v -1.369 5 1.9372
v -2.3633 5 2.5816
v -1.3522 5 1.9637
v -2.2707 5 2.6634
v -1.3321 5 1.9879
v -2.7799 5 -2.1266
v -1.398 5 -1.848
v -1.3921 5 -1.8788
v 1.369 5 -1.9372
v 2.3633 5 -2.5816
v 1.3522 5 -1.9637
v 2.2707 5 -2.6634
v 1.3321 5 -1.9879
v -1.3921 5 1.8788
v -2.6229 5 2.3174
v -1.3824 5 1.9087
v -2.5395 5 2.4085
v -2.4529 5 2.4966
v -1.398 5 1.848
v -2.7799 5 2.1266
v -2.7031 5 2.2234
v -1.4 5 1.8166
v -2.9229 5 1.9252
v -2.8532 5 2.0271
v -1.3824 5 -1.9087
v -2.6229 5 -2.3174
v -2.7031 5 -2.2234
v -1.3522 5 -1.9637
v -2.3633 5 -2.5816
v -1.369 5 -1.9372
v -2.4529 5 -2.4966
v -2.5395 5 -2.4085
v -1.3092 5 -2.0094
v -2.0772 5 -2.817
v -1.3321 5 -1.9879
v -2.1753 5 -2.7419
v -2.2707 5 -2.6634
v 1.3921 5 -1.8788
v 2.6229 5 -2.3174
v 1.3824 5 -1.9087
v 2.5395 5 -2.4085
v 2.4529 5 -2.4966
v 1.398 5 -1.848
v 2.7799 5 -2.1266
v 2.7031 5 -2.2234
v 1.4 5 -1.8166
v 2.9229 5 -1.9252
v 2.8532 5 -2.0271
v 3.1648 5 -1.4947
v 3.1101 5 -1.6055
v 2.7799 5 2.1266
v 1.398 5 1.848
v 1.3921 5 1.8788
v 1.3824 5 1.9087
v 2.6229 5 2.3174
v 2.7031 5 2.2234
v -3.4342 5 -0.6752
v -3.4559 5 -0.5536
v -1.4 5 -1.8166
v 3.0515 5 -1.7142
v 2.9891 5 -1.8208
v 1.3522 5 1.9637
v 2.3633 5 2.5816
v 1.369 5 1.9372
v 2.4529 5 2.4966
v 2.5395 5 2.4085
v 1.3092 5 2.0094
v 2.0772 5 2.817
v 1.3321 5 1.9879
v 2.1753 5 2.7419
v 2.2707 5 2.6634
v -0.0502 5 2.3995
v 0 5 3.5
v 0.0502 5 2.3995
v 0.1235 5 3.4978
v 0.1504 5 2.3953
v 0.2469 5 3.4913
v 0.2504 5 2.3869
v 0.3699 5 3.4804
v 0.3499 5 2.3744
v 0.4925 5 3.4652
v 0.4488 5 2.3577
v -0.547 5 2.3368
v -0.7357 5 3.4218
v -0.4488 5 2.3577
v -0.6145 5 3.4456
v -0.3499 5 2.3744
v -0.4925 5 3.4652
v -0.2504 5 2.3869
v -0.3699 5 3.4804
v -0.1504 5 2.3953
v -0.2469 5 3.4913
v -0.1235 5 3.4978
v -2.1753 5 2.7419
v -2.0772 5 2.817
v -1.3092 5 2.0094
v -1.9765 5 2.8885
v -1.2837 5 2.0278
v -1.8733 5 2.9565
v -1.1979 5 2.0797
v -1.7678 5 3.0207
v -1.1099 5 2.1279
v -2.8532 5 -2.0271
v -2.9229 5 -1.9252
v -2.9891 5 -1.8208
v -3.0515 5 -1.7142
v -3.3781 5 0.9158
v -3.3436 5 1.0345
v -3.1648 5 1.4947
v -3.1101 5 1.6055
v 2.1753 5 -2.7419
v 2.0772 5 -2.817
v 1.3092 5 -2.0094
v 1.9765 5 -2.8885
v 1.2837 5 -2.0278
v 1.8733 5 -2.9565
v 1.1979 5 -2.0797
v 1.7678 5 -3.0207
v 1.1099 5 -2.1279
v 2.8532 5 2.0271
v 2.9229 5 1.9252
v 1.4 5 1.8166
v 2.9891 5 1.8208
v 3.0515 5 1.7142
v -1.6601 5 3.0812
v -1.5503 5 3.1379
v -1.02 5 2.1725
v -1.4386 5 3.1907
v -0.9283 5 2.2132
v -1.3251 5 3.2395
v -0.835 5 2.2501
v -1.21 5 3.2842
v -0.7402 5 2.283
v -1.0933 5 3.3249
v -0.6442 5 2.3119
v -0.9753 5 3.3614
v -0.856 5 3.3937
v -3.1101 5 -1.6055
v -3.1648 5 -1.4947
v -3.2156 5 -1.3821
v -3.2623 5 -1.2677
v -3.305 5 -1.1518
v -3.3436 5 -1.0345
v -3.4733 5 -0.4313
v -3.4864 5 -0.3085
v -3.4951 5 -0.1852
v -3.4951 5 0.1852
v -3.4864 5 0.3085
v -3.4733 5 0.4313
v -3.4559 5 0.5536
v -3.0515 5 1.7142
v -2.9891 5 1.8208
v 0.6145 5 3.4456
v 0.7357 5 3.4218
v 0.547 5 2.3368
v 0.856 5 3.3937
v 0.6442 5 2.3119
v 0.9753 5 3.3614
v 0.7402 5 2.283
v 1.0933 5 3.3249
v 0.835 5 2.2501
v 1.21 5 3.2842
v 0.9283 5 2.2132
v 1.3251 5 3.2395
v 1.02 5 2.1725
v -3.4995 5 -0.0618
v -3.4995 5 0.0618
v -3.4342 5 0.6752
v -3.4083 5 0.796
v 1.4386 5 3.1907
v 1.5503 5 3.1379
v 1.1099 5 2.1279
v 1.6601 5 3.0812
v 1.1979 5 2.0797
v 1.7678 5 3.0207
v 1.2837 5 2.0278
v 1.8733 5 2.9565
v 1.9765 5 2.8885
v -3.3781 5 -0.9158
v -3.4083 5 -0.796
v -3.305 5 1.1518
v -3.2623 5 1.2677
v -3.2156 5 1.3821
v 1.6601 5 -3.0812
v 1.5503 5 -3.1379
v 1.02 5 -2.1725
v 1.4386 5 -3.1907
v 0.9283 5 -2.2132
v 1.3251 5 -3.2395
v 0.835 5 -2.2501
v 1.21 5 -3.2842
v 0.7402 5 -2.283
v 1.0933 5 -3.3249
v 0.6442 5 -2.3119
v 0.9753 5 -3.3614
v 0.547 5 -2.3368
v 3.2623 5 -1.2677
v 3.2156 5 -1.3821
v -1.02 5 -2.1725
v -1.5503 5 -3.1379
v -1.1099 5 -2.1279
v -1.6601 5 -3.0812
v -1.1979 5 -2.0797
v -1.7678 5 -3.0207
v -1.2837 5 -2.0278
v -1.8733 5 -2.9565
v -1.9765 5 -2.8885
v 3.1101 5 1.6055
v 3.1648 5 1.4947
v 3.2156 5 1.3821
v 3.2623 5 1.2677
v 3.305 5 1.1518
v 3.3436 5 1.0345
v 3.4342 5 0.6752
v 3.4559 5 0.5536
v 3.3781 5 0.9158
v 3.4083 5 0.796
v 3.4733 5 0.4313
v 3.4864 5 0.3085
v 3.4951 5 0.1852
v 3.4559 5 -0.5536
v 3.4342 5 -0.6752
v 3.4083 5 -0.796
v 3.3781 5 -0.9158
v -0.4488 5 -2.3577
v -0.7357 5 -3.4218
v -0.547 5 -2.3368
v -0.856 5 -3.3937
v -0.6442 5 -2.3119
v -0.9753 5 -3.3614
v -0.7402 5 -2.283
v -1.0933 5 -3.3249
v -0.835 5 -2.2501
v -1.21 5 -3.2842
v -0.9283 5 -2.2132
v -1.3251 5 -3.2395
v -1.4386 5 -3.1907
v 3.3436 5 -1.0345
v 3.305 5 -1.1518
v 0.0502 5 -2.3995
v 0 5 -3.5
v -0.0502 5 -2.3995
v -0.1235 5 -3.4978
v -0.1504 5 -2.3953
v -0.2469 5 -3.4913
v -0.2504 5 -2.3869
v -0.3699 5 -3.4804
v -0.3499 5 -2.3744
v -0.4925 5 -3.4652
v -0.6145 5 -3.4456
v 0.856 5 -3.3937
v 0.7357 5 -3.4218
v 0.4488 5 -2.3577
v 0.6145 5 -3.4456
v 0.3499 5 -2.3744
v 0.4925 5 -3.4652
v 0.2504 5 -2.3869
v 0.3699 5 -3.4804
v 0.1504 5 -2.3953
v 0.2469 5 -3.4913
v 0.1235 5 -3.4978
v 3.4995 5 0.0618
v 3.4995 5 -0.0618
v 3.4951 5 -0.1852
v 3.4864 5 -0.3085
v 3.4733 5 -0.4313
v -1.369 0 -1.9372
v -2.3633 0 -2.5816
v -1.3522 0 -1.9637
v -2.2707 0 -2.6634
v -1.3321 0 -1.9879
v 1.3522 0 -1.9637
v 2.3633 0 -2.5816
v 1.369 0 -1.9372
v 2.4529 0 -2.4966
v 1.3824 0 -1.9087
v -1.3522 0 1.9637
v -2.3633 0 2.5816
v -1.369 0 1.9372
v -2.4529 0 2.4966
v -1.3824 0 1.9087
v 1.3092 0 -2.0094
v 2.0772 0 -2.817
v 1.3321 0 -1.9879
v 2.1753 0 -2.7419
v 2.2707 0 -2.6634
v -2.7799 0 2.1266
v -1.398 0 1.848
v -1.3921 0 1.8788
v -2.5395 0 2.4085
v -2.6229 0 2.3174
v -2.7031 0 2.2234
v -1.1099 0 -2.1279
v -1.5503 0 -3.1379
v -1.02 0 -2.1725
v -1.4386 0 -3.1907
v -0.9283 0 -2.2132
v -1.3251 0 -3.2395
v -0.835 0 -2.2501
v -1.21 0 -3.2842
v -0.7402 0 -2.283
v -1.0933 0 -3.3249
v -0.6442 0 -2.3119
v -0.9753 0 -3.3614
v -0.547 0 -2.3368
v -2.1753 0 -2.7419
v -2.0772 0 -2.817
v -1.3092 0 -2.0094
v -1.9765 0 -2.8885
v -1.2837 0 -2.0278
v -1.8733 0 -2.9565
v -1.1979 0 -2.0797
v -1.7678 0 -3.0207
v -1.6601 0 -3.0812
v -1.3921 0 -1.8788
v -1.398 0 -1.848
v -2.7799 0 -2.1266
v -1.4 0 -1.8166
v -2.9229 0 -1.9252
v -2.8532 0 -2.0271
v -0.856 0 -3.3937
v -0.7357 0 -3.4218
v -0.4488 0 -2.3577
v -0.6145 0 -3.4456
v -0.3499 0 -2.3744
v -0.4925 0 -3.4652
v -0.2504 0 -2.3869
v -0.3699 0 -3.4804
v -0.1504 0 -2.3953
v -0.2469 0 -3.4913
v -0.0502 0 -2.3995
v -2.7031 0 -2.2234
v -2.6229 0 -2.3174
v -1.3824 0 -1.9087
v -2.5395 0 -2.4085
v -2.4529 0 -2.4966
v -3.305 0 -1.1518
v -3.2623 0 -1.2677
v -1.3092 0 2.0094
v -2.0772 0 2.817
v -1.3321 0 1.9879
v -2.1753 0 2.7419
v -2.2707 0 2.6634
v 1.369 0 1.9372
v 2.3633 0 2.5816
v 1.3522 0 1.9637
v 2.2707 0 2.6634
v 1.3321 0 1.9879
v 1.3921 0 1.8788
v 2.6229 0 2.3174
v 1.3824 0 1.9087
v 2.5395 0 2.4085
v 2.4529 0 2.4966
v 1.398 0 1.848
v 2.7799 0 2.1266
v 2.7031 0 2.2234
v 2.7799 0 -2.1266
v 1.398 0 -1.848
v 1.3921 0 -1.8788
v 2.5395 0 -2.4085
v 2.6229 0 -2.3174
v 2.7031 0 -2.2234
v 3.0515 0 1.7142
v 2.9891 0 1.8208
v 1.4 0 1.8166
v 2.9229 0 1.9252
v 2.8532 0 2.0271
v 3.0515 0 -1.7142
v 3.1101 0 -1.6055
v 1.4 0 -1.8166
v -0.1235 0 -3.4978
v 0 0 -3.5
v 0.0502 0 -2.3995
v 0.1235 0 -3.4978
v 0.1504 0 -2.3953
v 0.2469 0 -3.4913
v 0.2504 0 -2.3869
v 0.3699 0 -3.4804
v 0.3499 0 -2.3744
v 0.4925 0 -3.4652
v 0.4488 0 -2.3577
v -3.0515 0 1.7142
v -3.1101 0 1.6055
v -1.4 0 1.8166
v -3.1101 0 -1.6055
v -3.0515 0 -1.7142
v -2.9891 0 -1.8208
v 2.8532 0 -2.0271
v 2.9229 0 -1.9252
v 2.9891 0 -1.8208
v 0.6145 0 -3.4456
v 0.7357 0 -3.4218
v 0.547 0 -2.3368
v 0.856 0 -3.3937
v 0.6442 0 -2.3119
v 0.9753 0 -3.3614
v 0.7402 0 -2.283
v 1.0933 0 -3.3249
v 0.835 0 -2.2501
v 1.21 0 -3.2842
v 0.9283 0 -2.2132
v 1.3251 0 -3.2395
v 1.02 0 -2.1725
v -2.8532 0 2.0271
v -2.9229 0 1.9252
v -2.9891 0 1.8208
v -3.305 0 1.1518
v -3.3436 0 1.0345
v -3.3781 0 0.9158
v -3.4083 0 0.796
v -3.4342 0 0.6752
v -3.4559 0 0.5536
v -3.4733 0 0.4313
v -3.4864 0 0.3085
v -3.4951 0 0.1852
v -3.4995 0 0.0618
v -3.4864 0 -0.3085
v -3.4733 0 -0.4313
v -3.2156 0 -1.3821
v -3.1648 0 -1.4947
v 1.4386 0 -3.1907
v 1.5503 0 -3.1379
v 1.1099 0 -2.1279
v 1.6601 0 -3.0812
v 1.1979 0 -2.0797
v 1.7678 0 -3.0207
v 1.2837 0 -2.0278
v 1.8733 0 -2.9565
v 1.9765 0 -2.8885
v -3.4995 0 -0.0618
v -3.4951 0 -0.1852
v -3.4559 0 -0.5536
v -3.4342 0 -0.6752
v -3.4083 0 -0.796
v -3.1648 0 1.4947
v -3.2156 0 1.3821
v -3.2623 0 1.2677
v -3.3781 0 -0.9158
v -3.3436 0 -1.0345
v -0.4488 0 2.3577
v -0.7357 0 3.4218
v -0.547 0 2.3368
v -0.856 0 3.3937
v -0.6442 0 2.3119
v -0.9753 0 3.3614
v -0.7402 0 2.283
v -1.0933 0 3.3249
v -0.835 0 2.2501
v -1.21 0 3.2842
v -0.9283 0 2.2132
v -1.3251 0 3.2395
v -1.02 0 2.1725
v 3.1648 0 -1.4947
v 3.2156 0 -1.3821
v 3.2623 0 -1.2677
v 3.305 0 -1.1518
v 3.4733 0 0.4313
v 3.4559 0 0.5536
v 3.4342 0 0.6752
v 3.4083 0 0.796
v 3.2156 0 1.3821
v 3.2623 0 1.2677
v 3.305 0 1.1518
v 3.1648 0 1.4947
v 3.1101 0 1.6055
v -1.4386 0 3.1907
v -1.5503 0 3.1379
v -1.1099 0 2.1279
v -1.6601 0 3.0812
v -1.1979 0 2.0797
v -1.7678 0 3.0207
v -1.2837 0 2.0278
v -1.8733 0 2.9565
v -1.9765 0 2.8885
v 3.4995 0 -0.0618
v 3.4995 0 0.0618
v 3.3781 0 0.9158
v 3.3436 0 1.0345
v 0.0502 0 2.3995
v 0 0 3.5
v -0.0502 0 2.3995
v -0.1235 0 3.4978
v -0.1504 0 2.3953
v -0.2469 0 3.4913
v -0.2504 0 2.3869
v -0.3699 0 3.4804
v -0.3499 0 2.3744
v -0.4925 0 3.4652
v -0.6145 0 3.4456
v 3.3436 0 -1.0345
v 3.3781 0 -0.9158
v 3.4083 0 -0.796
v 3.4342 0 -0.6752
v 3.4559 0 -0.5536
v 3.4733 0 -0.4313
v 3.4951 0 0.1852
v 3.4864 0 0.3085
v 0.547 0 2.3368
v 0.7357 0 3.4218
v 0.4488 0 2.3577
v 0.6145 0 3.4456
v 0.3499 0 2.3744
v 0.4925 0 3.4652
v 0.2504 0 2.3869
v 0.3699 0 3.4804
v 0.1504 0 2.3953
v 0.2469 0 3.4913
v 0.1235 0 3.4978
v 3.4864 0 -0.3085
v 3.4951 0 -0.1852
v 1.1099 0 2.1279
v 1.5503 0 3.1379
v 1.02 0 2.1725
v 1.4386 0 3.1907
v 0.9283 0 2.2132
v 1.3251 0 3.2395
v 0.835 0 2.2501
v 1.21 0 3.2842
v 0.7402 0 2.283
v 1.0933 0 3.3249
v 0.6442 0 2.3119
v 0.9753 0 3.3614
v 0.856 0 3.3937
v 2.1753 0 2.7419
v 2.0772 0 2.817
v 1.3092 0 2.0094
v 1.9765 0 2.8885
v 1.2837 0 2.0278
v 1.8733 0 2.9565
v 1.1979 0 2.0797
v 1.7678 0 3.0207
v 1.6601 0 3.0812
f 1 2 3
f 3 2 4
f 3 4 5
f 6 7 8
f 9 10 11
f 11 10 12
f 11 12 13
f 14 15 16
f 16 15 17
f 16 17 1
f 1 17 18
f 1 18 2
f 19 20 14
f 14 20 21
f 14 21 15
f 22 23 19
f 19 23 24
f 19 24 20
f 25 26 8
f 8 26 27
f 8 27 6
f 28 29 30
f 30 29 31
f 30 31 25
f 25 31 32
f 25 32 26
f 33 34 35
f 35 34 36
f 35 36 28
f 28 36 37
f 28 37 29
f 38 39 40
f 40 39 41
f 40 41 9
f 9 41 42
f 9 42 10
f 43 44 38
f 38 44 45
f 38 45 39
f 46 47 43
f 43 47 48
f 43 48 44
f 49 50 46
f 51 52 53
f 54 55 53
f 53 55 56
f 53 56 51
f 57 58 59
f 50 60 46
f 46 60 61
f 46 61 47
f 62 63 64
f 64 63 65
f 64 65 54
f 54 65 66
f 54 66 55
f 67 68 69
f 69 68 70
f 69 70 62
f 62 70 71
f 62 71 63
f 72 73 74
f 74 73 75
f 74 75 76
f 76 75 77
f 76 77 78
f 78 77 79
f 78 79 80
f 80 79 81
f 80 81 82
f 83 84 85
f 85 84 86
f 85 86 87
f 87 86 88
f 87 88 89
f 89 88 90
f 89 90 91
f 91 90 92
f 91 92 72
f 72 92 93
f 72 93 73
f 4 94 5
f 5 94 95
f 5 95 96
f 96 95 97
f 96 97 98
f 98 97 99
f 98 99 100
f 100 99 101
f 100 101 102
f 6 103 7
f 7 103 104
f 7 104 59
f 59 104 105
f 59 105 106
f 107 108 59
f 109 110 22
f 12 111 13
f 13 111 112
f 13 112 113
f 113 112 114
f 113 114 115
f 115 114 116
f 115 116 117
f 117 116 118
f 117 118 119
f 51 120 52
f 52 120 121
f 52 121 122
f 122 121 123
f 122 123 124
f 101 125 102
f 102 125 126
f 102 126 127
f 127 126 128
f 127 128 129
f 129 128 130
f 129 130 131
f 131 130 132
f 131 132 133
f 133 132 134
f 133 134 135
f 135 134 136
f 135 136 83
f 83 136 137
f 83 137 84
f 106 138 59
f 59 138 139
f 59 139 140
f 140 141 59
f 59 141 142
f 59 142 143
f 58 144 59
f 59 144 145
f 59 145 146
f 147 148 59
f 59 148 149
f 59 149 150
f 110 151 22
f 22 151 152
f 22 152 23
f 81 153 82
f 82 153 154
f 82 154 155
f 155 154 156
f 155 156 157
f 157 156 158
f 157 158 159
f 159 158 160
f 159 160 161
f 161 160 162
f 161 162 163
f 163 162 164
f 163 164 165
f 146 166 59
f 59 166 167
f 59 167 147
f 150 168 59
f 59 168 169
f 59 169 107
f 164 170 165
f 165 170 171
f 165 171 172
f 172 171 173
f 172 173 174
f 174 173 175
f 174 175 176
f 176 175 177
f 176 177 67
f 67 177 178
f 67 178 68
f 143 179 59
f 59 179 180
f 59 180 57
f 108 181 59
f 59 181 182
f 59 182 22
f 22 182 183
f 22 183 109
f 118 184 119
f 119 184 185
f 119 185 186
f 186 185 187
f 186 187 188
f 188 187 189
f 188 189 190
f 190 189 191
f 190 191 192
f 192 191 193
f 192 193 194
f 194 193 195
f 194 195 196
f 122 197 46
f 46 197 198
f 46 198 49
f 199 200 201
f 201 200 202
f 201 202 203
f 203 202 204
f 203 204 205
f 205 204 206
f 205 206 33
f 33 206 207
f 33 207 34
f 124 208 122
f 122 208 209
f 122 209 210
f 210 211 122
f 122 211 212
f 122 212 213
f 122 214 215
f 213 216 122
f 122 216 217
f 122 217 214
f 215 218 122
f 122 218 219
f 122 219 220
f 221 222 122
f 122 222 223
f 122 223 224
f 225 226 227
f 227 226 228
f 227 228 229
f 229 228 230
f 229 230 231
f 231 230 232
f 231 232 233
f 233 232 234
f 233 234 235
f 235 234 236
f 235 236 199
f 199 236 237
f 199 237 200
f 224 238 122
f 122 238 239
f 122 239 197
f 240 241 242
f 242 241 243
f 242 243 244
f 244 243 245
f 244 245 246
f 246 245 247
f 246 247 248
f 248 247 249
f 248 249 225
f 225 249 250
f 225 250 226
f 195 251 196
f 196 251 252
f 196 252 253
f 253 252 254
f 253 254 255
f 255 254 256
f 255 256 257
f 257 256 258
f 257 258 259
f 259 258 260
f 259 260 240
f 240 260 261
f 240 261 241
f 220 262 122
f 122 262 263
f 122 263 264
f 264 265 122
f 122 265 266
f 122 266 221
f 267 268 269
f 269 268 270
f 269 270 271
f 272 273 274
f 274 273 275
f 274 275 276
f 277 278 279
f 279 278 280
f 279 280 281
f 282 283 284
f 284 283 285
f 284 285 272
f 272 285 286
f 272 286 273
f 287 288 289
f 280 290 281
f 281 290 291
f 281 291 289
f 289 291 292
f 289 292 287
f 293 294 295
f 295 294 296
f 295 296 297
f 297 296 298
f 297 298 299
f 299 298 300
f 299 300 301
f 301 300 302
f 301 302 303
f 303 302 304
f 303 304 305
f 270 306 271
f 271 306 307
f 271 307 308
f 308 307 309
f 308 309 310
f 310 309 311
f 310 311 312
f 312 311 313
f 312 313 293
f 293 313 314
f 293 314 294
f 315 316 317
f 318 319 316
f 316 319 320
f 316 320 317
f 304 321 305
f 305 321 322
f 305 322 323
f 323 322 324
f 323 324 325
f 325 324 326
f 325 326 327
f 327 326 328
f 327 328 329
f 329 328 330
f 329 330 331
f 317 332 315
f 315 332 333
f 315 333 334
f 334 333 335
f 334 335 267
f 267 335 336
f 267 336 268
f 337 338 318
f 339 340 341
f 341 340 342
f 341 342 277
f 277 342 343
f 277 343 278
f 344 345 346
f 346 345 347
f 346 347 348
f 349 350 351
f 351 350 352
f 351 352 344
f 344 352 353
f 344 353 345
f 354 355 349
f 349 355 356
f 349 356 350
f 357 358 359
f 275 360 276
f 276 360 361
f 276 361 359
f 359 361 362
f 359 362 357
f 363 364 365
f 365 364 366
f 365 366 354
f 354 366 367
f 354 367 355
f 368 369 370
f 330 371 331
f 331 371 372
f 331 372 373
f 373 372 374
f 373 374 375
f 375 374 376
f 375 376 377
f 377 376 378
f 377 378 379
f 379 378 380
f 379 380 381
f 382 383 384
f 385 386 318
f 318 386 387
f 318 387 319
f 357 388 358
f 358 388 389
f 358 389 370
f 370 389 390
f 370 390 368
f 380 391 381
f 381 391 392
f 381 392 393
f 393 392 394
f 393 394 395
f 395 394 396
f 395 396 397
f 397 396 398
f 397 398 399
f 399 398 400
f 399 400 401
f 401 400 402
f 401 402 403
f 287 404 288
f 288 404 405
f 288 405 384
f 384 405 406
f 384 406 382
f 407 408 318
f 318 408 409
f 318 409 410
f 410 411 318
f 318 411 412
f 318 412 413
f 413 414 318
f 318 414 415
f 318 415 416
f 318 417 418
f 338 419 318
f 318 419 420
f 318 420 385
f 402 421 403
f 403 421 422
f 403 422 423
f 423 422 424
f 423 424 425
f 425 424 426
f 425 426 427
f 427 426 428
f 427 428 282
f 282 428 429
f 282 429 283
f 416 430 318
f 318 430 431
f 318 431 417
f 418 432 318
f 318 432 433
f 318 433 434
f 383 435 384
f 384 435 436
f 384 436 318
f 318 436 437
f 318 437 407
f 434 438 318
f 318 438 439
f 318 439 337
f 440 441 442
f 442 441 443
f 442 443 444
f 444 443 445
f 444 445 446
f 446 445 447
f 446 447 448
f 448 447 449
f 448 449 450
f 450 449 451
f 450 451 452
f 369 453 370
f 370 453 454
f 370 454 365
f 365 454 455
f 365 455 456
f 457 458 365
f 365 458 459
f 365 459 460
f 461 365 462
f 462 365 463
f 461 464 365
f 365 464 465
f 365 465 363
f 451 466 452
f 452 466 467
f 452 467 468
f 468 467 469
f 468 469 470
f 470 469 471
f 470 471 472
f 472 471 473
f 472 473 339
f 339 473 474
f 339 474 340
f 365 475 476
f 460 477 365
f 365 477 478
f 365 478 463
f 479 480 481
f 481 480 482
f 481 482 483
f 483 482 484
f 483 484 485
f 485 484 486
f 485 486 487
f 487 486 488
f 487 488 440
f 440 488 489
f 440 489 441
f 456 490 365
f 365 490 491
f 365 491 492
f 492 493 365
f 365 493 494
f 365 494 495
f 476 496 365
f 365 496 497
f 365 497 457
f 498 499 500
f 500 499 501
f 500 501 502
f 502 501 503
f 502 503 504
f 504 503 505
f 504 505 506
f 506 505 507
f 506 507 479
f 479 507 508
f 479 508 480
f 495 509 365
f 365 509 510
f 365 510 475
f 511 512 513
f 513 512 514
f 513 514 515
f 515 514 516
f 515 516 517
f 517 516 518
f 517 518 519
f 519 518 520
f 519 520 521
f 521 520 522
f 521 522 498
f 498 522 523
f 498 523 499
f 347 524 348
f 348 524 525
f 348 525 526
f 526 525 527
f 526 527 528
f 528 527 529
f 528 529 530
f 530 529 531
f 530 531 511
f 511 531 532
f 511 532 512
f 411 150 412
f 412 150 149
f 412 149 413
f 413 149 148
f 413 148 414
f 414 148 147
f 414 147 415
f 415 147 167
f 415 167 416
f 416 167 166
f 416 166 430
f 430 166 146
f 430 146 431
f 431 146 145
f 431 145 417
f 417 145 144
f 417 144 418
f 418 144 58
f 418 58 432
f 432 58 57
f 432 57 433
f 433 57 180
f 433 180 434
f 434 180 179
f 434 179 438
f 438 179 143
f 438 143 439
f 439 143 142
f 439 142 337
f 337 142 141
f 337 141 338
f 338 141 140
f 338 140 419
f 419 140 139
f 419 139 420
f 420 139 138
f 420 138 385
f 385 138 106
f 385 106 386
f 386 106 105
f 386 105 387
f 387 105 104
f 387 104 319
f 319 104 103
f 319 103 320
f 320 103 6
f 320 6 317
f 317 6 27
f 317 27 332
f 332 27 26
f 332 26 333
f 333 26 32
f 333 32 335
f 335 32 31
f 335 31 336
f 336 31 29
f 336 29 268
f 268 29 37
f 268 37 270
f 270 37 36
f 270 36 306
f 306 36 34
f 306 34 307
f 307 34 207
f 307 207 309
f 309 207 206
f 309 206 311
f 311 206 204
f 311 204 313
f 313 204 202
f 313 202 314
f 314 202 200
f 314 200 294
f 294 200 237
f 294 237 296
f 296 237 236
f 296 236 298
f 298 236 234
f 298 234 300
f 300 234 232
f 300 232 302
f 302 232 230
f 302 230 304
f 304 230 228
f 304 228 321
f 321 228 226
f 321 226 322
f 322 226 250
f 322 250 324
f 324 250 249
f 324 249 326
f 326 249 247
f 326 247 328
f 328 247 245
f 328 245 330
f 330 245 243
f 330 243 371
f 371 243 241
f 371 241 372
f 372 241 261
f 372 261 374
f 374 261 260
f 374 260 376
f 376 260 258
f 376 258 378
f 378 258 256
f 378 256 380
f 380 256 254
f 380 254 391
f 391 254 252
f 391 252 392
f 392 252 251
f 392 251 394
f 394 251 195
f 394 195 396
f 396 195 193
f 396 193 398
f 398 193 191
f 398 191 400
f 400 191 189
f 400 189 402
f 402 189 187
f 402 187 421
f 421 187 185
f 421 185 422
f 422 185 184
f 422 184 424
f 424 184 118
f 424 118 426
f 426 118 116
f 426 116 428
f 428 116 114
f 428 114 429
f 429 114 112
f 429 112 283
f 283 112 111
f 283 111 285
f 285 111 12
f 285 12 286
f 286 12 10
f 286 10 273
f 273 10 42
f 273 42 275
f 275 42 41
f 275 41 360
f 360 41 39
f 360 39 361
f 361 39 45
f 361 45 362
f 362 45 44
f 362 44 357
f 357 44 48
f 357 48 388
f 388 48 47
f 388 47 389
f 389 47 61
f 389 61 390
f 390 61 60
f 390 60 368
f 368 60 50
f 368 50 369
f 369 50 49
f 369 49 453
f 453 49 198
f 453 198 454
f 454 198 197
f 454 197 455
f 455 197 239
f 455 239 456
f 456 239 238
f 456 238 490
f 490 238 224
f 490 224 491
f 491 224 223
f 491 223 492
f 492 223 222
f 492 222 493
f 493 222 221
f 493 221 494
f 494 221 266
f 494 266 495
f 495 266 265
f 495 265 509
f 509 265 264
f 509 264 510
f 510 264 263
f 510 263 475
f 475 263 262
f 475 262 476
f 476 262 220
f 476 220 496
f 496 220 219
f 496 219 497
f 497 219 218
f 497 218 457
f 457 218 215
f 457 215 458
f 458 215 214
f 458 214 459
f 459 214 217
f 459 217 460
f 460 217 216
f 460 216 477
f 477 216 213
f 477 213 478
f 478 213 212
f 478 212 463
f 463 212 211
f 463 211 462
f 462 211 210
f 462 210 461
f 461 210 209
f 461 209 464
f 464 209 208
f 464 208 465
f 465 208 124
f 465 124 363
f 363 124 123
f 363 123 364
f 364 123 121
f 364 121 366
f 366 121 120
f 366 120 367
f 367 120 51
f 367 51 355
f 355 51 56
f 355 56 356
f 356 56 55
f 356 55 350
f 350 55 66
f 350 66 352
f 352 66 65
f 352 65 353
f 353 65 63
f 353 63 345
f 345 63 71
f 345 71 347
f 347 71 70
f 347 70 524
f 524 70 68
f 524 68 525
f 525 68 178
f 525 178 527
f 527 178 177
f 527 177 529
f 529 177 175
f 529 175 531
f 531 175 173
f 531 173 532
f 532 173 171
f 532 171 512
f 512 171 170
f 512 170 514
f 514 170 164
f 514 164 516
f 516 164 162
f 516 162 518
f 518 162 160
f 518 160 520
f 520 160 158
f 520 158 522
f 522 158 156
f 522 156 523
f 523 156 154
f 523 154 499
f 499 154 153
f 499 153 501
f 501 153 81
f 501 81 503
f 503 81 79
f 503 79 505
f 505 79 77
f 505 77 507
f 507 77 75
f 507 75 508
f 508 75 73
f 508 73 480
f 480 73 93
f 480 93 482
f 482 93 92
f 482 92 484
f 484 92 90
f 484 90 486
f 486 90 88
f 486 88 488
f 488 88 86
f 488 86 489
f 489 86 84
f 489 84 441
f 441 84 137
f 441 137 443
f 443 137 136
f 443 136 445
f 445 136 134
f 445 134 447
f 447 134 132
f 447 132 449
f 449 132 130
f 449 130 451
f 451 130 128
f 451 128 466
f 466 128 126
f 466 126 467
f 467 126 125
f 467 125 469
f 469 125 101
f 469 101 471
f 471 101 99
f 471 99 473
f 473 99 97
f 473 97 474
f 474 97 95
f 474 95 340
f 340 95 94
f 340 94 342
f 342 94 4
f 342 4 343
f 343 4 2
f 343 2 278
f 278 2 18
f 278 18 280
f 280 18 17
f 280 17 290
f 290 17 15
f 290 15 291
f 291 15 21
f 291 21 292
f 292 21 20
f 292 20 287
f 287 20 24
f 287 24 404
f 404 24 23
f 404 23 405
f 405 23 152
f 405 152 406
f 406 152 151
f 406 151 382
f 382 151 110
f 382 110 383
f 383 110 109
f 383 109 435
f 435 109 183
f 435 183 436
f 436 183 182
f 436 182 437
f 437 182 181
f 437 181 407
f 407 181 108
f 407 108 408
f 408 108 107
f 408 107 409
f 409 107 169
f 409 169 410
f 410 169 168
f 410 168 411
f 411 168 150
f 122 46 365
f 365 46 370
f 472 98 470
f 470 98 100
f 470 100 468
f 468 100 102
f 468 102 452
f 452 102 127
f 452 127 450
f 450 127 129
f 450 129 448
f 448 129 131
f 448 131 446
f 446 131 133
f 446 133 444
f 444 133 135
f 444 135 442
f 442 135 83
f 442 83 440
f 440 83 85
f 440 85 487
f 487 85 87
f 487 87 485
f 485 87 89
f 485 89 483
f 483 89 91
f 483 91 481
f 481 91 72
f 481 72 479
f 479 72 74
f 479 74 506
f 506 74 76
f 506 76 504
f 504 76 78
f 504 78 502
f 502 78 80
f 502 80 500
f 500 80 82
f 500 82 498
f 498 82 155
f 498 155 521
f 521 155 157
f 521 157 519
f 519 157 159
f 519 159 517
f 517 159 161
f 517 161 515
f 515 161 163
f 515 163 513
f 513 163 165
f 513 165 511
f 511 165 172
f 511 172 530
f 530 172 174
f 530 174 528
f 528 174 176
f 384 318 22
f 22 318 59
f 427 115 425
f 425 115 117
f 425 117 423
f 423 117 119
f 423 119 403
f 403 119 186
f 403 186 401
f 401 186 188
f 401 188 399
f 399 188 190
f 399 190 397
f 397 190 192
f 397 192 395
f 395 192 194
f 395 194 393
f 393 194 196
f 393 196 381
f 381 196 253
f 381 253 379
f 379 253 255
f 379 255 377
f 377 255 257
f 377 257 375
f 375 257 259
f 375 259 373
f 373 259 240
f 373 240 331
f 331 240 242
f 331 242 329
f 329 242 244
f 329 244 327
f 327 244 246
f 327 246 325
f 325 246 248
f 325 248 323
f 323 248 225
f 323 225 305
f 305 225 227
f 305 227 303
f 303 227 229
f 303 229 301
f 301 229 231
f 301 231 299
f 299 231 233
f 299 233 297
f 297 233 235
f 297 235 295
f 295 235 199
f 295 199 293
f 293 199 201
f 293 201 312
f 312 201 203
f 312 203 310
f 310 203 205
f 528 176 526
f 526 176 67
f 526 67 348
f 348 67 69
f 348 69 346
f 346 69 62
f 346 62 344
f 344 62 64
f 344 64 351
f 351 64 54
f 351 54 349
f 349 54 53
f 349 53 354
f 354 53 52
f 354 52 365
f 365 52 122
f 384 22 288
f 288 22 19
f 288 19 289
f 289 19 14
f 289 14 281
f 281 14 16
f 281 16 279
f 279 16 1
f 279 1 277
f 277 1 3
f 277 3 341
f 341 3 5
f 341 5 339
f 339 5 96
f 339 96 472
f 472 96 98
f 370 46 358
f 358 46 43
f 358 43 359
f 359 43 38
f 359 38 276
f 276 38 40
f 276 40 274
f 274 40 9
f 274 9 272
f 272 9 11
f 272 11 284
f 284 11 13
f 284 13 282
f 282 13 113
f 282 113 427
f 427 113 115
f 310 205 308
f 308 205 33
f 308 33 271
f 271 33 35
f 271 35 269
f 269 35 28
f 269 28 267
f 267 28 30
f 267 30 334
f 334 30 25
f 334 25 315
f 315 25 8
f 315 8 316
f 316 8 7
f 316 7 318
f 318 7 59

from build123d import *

# Parameters (mm, degrees)
SKETCH1_R           = 3.5
BOSS_EXTRUDE1_DEPTH = 5
CUT_EXTRUDE1_DEPTH  = 5
FILLET1_R           = 0.25


with BuildPart() as part:
    # Sketch1 → Boss-Extrude1 (new body)
    with BuildSketch(Plane(origin=(0, 0, 0), x_dir=(1, 0, 0), z_dir=(0, 1, 0))):
        with Locations(Location((0, 0, 0), (0, 0, 270))):
            Circle(SKETCH1_R)
    extrude(amount=BOSS_EXTRUDE1_DEPTH)

    # Sketch2 → Cut-Extrude1 (cut)
    with BuildSketch(Plane(origin=(0, 5, 0), x_dir=(1, 0, 0), z_dir=(0, 1, 0))):
        with BuildLine():
            Line((1.4, -1.949358869), (1.4, 1.949358869))
            ThreePointArc((1.4, 1.949358869), (0, 2.4), (-1.4, 1.949358869))
            Line((-1.4, 1.949358869), (-1.4, -1.949358869))
            ThreePointArc((-1.4, -1.949358869), (0, -2.4), (1.4, -1.949358869))
        make_face()
    extrude(amount=-CUT_EXTRUDE1_DEPTH, mode=Mode.SUBTRACT)

    # Fillet1
    fillet1_edges = [part.edges().sort_by_distance(p)[0] for p in [
        (1.4, 2.5, 1.949358869),
        (-1.4, 2.5, 1.949358869),
        (-1.4, 2.5, -1.949358869),
        (1.4, 2.5, -1.949358869),
    ]]
    fillet(fillet1_edges, radius=FILLET1_R)


solid = part.part
